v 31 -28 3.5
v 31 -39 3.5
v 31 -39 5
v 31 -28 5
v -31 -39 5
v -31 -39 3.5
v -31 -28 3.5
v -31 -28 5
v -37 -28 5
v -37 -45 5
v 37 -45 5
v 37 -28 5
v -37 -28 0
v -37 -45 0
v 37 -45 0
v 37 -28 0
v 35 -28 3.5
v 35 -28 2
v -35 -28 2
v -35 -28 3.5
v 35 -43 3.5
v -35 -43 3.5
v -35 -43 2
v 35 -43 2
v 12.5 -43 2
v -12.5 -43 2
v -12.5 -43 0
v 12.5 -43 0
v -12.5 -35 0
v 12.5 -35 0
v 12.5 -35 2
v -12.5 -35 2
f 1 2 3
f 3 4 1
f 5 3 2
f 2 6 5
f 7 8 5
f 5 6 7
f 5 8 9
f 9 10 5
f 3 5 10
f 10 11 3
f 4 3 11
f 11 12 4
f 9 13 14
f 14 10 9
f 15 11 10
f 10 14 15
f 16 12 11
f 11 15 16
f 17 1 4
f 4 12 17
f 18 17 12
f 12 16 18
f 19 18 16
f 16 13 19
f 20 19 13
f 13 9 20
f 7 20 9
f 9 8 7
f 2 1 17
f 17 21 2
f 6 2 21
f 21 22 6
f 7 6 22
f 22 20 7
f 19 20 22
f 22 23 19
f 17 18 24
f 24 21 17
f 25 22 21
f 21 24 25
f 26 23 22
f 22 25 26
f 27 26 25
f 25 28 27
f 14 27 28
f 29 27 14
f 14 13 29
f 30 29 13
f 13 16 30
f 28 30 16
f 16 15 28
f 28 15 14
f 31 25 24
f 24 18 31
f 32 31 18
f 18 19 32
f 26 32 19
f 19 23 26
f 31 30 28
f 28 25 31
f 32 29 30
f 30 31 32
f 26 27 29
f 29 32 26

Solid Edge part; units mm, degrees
sketch "Sketch1" plane through (0, 0, 0) normal (0, 0, 1) x (1, 0, 0)
  line L0 (-37, -45) -> (37, -45)
  line L1 (37, -45) -> (37, 45)
  line L2 (37, 45) -> (-37, 45)
  line L3 (-37, 45) -> (-37, -45)
  dimension "D1" = 74
  dimension "D2" = 90
extrude "Protrusion1" add sketch "Sketch1" along normal blind 2
sketch "Sketch2" plane through (0, 0, 2) normal (0, 0, 1) x (1, 0, 0)
  line L0 (-35, -43) -> (-35, 45)
  line L1 (-35, 45) -> (-37, 45)
  line L2 (-37, 45) -> (-37, -45)
  line L3 (37, -45) -> (-37, -45)
  line L4 (37, -45) -> (37, 45)
  line L5 (37, 45) -> (35, 45)
  line L6 (35, 45) -> (35, -43)
  line L7 (35, -43) -> (-35, -43)
extrude "ExtrudedProtrusion_2" add sketch "Sketch2" along normal blind 3
sketch "Sketch3" plane through (35, 1, 3.5) normal (-1, 0, 0) x (0, -1, 0)
  line L0 (44, 1.5) -> (-33, 1.5)
  line L1 (-33, 1.5) -> (-33, 0)
  line L2 (-33, 0) -> (44, 0)
  line L3 (44, 0) -> (44, 1.5)
extrude "ExtrudedProtrusion_3" add sketch "Sketch3" along normal blind 4
sketch "Sketch4" plane through (-35, 1, 3.5) normal (1, 0, 0) x (0, 1, 0)
  line L0 (-44, 1.5) -> (33, 1.5)
  line L1 (33, 1.5) -> (33, 0)
  line L2 (33, 0) -> (-44, 0)
  line L3 (-44, 0) -> (-44, 1.5)
extrude "ExtrudedProtrusion_4" add sketch "Sketch4" along normal blind 4
sketch "Sketch5" plane through (35, 1, 3.5) normal (-1, 0, 0) x (0, -1, 0)
  spline S0 degree 3 poles (-33, -1.5) (-34.865, -1.4464) (-37.9174, -1.5297) (-41.2071, 1.135) (-43.2352, 1.3829) (-44, 1.5) knots 0 0 0 0 0.440598 0.817285 1 1 1 1
  line L0 (-44, -1.5) -> (-33, -1.5)
  line L1 (-44, 1.5) -> (-44, -1.5)
extrude "ExtrudedProtrusion_5" add sketch "Sketch5" along normal blind 70
fillet "Round_5" radius 1 2 edges at (33, 34, 3.5) (-33, 34, 3.5)
sketch "Sketch6" plane through (0, 45, 2.5) normal (0, 1, 0) x (-1, 0, 0)
  line L0 (37, -2.5) -> (-37, -2.5)
  line L1 (-37, -2.5) -> (-37, 2.5)
  line L2 (-37, 2.5) -> (37, 2.5)
  line L3 (37, 2.5) -> (37, -2.5)
extrude "ExtrudedProtrusion_6" add sketch "Sketch6" along normal blind 2
sketch "Sketch7" plane through (0, -4.5, 2) normal (0, 0, 1) x (1, 0, 0)
  line L0 (12.5, -30.5) -> (-12.5, -30.5)
  line L1 (-12.5, -30.5) -> (-12.5, -38.5)
  line L2 (-12.5, -38.5) -> (12.5, -38.5)
  line L3 (12.5, -38.5) -> (12.5, -30.5)
  dimension "D1" = 8
  dimension "D2" = 25
extrude "ExtrudedCutout_1" cut sketch "Sketch7" against normal blind 2
sketch "Sketch8" plane through (0, -43, 2.5) normal (0, 1, 0) x (1, 0, 0)
  line L0 (-31, -1) -> (31, -1)
  line L1 (31, -1) -> (31, -2.5)
  line L2 (31, -2.5) -> (-31, -2.5)
  line L3 (-31, -2.5) -> (-31, -1)
extrude "ExtrudedProtrusion_7" add sketch "Sketch8" along normal blind 4
sketch "Sketch9" plane through (0, 0, 0) normal (1, 0, 0) x (0, 1, 0)
  line L0 (47, 0) -> (-28, 0)
  line L1 (-28, 0) -> (-28, 5)
  line L2 (-28, 5) -> (47, 5)
  line L3 (47, 5) -> (47, 0)
extrude "ExtrudedCutout_2" cut sketch "Sketch9" along normal mid plane 75
